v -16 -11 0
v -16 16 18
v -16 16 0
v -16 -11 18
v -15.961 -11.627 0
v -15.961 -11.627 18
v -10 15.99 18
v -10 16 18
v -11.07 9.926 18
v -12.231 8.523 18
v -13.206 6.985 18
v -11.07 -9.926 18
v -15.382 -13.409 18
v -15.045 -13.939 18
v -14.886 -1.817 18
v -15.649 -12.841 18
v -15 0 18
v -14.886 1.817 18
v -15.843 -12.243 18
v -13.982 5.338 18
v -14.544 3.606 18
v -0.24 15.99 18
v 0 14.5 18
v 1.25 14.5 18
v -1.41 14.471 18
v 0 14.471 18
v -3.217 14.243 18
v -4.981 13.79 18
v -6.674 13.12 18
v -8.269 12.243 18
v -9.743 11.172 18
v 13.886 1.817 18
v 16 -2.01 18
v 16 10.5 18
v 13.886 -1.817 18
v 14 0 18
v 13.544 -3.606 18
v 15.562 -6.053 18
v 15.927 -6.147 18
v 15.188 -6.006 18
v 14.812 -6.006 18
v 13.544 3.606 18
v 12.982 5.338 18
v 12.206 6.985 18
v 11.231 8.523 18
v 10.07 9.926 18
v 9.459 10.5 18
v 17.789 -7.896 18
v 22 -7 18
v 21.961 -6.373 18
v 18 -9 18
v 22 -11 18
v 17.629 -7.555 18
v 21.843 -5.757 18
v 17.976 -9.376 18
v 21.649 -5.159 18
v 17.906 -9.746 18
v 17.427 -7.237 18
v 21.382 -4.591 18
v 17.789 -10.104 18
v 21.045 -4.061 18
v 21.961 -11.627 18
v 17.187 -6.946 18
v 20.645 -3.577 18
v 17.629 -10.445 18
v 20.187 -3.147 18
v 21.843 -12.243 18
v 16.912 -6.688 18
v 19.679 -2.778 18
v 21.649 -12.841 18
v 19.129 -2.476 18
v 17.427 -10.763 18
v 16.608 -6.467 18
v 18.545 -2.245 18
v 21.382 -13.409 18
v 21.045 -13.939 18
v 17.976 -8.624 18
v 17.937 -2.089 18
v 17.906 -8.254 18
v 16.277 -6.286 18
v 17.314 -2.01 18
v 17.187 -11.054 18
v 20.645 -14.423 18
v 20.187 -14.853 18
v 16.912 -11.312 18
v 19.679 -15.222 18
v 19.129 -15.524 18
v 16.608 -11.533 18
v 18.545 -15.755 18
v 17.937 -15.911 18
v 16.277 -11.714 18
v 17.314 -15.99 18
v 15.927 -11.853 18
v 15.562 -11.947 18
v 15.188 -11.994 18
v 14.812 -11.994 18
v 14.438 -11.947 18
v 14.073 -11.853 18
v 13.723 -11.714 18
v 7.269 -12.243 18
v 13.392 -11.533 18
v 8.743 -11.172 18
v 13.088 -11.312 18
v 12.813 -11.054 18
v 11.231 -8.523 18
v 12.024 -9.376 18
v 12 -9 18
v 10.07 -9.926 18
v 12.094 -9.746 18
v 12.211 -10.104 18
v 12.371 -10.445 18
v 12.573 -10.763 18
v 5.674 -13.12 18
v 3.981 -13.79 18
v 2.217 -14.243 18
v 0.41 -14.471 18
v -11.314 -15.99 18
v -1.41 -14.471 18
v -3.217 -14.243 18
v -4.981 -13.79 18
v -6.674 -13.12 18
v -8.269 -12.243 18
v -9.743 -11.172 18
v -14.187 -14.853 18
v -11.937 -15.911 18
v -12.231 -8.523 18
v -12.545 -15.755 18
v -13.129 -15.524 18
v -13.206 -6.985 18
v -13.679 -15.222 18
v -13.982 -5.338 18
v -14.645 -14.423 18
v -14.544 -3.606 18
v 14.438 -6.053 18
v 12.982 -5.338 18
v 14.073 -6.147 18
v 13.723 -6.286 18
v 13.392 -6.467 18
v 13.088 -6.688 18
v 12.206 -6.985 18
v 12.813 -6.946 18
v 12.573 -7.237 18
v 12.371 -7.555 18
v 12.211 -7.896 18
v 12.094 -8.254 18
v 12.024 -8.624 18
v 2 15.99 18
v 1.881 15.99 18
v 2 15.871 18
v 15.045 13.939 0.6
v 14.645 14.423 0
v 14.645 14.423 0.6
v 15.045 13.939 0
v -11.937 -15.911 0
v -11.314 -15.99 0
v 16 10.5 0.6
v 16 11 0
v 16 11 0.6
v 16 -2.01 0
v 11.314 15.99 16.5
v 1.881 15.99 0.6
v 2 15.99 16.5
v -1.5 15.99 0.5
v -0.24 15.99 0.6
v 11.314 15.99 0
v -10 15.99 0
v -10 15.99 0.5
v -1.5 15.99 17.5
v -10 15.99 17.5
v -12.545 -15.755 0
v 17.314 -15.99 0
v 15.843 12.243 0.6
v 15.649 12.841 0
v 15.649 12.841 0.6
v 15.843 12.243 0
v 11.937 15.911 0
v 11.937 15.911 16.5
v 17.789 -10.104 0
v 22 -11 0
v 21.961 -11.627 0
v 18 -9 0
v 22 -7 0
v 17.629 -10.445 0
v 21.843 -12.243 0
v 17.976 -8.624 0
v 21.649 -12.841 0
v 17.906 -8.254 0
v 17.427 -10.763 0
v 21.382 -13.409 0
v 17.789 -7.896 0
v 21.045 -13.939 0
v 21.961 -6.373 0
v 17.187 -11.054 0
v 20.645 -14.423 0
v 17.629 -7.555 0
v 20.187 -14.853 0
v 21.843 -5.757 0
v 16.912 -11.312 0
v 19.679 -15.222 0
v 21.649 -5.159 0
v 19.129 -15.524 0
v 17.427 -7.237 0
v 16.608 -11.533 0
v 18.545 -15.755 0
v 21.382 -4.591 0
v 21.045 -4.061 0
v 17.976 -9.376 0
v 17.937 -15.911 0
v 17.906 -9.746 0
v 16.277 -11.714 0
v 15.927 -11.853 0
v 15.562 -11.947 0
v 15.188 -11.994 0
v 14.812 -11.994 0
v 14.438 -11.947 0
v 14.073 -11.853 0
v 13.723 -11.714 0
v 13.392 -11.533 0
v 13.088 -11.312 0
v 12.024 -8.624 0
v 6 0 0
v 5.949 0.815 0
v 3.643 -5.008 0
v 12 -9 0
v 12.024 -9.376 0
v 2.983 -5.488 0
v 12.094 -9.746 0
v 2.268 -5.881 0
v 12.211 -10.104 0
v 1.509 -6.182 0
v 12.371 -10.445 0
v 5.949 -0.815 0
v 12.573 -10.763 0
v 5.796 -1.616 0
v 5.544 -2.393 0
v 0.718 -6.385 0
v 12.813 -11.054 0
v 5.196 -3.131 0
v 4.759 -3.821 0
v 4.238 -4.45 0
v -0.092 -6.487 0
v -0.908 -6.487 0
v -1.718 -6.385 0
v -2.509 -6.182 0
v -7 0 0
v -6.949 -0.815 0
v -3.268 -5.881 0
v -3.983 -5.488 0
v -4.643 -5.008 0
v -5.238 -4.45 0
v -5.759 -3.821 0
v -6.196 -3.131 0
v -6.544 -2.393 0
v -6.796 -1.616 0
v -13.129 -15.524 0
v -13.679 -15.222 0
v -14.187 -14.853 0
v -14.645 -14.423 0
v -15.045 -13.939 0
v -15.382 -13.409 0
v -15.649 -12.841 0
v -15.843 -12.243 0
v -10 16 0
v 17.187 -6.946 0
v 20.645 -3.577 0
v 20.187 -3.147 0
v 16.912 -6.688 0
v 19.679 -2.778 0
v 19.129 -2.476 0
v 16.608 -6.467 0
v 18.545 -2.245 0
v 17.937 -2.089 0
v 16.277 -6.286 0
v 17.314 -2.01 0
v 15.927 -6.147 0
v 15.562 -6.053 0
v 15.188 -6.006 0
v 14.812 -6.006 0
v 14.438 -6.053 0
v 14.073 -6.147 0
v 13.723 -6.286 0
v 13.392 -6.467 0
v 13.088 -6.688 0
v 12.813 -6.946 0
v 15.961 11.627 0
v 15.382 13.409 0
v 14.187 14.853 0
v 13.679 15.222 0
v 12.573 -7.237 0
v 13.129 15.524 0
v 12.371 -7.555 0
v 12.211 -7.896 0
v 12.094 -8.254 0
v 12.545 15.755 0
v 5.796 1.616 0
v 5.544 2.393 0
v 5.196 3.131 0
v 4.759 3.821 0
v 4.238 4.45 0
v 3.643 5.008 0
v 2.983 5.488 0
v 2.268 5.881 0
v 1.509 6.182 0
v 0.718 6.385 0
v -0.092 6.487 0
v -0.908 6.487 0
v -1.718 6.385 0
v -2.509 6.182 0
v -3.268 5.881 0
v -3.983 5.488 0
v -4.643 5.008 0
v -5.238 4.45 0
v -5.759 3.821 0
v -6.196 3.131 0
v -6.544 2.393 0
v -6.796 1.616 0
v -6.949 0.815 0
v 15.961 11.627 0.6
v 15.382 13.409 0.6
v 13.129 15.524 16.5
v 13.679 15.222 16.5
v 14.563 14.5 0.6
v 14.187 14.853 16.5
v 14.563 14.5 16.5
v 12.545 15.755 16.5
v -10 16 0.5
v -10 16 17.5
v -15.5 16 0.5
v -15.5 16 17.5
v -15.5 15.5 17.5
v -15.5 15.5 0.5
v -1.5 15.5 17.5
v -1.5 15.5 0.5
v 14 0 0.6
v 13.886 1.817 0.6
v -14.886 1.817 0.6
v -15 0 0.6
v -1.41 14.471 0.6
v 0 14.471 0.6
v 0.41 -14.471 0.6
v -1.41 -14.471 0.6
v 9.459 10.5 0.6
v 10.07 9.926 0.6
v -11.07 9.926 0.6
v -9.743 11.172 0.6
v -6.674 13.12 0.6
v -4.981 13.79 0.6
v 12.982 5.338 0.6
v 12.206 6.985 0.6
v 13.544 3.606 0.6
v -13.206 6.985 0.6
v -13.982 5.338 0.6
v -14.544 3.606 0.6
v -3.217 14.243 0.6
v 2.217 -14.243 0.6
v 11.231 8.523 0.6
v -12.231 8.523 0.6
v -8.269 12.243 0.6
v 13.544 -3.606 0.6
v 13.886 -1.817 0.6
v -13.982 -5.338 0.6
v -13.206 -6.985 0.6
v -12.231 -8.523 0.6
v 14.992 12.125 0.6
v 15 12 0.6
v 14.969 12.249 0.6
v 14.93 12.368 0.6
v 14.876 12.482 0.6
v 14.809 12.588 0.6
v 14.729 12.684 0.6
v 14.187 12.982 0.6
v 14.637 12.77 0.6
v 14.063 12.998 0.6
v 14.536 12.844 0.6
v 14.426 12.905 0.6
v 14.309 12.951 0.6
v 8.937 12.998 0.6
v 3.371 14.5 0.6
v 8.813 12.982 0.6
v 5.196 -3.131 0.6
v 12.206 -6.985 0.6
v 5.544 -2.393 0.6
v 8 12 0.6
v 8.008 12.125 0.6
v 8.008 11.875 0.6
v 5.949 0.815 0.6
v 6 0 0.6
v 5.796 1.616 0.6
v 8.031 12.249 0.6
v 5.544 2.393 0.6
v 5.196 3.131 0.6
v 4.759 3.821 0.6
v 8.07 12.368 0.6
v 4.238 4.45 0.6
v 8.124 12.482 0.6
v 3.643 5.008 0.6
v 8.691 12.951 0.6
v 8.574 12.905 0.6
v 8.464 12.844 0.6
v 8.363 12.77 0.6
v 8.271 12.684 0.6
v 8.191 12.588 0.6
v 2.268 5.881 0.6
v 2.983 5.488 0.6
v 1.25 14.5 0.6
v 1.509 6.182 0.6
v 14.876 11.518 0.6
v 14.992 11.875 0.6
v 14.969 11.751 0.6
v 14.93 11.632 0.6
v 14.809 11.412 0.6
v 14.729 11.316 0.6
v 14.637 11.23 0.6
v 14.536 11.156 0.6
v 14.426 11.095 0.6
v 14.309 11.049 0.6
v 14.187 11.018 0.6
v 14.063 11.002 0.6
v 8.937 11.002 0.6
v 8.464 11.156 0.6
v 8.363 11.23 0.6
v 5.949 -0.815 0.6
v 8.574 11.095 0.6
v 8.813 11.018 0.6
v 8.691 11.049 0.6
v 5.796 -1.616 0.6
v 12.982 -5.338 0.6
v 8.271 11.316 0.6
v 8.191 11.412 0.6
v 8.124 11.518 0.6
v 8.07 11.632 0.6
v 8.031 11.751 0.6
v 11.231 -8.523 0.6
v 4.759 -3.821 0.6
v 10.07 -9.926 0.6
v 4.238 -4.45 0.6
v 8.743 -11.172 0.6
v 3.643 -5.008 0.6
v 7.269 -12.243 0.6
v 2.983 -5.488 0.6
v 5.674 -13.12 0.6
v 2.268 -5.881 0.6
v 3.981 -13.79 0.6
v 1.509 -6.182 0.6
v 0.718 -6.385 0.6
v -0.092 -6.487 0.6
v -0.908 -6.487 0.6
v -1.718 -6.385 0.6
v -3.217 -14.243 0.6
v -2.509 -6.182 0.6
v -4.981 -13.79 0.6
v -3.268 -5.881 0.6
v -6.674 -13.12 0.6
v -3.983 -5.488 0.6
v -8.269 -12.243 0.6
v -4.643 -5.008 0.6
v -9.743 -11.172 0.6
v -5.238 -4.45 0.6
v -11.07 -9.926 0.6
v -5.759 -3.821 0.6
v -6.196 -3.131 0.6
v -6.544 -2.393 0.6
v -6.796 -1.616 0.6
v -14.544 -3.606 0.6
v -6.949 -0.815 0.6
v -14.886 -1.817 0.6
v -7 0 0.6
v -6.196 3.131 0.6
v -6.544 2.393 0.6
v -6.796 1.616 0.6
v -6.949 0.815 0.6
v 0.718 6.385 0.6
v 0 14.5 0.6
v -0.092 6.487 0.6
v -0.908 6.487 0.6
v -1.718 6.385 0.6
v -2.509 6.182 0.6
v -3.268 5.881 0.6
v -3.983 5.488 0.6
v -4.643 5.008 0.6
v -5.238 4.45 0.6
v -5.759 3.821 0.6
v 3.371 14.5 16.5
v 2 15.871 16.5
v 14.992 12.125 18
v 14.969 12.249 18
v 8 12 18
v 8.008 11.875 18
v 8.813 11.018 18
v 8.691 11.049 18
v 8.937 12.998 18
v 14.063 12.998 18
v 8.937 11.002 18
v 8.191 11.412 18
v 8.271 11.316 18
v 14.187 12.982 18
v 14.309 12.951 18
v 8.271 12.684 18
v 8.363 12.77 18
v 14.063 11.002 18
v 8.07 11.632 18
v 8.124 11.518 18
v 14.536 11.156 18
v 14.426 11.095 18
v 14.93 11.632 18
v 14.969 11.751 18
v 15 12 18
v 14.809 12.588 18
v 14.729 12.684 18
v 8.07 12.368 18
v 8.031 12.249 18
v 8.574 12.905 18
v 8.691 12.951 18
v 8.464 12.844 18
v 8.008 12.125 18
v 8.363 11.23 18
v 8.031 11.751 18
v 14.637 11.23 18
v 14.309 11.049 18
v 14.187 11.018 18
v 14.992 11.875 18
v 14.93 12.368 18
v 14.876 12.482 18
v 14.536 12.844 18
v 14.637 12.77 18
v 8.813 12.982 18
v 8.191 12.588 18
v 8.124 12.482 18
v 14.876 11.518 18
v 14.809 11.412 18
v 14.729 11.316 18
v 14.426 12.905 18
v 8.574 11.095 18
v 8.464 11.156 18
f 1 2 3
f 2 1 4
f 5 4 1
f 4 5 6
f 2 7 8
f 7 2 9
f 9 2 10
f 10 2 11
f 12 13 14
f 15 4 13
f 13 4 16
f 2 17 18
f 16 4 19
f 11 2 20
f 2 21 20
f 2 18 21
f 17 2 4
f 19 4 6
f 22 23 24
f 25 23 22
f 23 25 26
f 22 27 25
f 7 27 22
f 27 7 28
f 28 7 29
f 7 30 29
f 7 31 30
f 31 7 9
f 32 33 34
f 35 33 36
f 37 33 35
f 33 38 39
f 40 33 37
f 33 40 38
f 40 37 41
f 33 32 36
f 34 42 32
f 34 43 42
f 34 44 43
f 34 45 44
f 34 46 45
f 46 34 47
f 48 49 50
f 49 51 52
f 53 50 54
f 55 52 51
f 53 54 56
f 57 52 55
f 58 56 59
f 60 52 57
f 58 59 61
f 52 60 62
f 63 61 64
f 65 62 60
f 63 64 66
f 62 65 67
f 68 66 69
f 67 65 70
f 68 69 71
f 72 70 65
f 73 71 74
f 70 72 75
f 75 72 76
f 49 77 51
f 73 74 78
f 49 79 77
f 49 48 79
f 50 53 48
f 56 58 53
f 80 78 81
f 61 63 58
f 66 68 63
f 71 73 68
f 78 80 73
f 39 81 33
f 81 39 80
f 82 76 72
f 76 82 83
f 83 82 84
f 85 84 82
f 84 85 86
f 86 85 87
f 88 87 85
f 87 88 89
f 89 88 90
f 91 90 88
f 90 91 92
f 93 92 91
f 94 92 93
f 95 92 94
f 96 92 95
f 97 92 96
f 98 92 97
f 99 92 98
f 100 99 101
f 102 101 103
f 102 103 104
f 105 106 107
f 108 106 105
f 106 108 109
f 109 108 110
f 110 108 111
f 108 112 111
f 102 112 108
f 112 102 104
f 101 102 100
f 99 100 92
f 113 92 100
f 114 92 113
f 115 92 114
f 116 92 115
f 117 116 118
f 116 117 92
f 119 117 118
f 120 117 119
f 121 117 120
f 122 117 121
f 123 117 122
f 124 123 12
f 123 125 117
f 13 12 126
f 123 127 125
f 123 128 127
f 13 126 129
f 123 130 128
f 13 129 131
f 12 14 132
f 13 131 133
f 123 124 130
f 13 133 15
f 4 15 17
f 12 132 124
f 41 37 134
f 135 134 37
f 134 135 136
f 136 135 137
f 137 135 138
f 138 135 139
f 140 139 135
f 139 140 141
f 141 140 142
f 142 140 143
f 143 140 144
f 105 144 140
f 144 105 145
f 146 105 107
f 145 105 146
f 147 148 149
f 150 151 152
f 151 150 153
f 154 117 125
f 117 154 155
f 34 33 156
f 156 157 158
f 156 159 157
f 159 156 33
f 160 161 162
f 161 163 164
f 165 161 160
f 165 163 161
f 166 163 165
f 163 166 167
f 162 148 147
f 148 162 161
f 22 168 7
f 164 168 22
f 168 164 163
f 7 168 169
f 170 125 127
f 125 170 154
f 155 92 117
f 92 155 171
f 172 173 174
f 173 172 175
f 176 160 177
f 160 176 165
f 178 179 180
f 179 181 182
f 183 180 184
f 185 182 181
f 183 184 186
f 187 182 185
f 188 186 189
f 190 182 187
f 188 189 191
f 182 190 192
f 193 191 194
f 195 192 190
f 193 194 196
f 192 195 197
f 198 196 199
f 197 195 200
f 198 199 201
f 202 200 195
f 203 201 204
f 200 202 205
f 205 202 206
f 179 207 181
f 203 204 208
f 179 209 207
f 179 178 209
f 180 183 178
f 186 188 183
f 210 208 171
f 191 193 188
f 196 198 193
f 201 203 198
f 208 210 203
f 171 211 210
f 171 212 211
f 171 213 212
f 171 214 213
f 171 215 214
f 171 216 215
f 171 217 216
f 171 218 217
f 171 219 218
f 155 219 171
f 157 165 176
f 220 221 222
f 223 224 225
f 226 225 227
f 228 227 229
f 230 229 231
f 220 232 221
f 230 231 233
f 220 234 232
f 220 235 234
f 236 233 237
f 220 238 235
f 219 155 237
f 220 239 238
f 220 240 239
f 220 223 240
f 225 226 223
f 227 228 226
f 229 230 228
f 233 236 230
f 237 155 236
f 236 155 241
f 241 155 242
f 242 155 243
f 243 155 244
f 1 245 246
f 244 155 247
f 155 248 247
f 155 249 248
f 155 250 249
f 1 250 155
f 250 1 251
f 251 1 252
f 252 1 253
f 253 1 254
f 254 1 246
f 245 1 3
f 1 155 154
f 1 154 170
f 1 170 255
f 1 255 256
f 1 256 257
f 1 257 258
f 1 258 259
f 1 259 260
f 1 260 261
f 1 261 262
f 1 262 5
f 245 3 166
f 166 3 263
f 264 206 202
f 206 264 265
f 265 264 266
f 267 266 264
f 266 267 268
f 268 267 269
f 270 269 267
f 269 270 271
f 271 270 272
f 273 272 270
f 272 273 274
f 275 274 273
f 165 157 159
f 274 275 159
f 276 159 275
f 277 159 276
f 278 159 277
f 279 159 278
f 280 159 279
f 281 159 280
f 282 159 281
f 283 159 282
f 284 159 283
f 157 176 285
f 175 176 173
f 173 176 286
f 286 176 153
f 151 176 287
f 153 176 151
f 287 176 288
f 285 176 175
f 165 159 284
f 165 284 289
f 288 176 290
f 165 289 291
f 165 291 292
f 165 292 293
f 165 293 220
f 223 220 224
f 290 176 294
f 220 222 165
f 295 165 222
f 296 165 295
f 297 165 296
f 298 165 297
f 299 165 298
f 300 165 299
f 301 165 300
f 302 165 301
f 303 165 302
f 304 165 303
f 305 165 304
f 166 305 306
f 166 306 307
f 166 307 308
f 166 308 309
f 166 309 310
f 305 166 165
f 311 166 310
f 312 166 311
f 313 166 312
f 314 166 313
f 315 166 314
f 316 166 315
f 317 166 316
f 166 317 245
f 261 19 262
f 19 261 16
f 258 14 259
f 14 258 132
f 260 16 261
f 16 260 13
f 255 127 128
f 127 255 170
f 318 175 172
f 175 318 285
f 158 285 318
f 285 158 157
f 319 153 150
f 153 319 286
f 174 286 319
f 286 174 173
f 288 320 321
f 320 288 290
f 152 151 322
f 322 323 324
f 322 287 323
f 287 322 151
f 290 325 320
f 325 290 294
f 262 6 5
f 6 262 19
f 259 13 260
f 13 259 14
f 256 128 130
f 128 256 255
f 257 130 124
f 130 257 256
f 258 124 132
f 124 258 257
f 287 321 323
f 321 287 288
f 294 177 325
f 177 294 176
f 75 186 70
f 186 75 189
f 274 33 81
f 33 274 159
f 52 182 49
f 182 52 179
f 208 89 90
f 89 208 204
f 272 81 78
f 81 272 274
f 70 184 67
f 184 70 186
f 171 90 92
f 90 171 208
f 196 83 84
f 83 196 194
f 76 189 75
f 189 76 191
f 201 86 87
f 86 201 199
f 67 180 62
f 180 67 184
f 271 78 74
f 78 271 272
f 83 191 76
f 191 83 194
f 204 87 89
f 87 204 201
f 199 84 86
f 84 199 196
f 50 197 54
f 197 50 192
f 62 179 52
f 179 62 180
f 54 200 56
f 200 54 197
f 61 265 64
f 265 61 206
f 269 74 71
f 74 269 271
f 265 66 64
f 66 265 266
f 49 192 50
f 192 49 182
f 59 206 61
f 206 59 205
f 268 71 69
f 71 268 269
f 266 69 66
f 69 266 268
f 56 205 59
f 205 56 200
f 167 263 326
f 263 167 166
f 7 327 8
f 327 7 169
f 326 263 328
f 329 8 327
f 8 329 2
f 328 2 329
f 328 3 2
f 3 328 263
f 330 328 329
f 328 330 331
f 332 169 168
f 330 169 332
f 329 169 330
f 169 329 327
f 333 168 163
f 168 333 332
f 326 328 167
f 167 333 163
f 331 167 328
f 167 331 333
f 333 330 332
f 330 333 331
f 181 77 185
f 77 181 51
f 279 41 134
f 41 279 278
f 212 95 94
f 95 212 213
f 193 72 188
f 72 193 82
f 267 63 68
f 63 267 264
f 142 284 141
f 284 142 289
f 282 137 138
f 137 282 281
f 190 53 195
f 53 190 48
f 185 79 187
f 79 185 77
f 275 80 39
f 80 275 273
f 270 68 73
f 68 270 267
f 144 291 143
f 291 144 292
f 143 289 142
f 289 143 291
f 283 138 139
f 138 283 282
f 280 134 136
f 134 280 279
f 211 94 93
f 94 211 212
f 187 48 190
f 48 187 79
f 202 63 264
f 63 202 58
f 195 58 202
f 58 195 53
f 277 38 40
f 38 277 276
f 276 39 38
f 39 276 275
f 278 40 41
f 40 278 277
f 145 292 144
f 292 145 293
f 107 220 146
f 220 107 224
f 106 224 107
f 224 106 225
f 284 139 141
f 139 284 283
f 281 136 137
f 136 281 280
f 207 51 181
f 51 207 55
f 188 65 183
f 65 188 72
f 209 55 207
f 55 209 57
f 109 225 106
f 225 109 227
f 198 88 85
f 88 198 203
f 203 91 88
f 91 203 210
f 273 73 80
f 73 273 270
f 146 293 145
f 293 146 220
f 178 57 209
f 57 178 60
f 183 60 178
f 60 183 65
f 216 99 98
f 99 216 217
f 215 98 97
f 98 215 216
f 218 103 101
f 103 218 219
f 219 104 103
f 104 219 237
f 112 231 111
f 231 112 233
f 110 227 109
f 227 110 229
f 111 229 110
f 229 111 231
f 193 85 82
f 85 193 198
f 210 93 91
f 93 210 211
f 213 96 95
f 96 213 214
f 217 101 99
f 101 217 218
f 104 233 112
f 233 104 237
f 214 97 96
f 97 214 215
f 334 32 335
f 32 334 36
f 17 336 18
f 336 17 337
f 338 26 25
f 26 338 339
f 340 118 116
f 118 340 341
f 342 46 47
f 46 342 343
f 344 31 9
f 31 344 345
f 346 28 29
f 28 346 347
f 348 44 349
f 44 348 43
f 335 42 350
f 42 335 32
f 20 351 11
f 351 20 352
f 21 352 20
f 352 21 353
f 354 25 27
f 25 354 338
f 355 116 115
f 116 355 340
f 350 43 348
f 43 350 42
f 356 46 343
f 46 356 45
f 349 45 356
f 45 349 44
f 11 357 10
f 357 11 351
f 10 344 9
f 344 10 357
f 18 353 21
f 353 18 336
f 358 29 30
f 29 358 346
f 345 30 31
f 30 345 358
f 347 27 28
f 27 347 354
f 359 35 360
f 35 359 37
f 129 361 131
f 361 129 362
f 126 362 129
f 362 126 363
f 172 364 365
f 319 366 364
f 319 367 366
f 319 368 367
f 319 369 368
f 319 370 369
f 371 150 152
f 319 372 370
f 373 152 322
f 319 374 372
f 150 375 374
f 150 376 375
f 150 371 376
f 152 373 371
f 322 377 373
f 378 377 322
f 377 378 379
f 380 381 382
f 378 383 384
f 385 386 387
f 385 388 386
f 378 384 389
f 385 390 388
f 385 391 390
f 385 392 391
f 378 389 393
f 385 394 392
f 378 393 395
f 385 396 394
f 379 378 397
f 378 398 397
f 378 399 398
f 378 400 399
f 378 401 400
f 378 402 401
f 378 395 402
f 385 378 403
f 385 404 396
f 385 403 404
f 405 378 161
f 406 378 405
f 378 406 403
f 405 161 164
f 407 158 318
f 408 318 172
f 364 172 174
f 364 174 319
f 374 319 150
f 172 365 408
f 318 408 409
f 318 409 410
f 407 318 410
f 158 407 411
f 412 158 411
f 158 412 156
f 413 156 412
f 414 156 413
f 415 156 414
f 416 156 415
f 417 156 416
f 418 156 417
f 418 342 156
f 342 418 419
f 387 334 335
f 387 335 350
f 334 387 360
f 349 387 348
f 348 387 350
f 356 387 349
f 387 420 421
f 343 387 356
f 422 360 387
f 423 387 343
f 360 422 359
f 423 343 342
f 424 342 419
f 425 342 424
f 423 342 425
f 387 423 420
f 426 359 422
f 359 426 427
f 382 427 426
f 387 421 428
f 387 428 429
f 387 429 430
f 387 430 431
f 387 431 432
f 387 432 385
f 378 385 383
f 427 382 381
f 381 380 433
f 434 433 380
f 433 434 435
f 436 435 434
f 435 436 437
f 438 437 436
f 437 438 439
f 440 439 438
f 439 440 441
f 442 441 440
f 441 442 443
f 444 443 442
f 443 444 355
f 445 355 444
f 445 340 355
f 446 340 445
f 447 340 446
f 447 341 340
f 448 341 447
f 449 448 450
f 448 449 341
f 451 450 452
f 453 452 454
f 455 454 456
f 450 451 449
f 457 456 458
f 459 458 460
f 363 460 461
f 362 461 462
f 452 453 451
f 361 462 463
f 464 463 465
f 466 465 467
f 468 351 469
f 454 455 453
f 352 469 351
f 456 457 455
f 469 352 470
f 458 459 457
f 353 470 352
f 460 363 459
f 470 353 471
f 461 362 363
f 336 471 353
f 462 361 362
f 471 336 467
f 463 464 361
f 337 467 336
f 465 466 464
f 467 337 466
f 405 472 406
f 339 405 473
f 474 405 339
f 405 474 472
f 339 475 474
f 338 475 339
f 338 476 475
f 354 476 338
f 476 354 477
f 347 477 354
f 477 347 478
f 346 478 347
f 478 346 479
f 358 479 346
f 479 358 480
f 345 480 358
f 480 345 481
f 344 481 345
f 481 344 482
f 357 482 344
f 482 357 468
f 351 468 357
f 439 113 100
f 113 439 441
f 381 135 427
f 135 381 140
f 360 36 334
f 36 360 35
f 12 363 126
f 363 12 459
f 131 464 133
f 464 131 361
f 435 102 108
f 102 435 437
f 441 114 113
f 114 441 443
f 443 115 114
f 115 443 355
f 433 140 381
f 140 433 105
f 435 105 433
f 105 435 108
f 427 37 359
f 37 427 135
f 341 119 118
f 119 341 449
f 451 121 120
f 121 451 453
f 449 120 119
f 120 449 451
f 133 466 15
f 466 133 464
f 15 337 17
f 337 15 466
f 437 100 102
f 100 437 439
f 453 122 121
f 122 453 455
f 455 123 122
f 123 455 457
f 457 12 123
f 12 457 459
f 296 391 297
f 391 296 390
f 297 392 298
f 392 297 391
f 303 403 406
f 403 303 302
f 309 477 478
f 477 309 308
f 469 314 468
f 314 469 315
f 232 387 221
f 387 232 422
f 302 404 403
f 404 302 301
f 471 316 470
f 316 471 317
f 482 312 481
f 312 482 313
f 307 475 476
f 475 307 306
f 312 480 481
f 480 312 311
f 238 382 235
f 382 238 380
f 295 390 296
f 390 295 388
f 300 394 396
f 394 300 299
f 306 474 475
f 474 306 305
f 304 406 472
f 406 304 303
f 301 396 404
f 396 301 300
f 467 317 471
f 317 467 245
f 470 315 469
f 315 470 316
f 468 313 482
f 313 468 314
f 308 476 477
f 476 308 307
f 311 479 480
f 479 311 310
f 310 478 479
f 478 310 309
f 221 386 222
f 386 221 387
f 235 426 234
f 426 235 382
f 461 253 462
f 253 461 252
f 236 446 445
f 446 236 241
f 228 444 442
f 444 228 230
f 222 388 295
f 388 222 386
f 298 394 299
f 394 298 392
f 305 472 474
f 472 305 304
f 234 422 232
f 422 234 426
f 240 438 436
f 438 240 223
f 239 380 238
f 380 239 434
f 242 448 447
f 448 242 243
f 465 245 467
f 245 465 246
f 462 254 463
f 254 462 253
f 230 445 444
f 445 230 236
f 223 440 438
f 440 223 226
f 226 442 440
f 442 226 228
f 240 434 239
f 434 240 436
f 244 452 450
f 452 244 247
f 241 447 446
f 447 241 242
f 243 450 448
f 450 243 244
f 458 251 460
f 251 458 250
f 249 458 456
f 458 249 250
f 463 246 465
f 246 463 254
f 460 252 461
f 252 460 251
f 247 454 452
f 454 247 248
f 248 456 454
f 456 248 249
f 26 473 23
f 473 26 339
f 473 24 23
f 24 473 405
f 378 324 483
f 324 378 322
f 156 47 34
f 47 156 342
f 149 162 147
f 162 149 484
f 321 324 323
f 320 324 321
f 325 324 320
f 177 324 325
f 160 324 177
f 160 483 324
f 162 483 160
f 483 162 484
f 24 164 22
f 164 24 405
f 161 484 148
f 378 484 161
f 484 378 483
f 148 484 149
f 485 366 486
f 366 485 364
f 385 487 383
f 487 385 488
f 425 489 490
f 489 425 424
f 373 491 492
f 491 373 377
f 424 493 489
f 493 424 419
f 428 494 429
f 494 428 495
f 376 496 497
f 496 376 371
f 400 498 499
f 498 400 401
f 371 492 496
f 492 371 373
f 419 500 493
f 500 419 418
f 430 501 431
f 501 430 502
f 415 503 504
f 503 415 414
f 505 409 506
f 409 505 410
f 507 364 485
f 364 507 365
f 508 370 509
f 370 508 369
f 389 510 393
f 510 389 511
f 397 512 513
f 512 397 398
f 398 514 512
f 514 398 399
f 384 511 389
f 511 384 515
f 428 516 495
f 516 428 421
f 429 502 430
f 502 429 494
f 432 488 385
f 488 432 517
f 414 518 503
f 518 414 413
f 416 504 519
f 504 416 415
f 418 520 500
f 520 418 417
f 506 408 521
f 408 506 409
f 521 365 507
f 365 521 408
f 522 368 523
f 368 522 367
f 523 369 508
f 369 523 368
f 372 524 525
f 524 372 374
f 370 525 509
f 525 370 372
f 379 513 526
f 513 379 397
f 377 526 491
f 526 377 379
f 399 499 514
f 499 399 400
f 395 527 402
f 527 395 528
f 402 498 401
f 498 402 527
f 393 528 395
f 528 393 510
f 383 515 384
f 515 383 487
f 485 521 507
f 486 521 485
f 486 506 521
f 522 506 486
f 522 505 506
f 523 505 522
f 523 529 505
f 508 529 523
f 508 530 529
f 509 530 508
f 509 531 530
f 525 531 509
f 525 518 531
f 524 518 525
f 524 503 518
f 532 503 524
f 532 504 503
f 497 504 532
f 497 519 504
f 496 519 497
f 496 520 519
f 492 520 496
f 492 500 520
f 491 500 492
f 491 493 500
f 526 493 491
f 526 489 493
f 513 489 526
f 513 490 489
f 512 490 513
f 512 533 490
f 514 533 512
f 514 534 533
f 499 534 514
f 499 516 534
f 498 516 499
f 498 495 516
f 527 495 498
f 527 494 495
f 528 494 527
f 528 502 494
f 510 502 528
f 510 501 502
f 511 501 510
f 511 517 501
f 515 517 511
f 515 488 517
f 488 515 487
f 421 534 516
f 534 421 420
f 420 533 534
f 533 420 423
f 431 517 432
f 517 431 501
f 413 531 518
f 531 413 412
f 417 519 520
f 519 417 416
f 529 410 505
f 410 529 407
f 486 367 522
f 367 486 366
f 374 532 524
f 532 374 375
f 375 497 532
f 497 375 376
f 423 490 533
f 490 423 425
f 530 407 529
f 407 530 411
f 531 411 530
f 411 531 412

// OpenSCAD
$fn = 50;


union() {
	difference() {
		union() {
			translate(v = [0, 0, 0]) {
				rotate(a = [0, 0, 0]) {
					hull() {
						translate(v = [-11.0000000000, 11.0000000000, 0]) {
							rotate(a = [0, 0, 0]) {
								translate(v = [0, 0, 0]) {
									rotate(a = [0, 0, 0]) {
										cylinder(h = 18, r = 5);
									}
								}
							}
						}
						translate(v = [11.0000000000, 11.0000000000, 0]) {
							rotate(a = [0, 0, 0]) {
								translate(v = [0, 0, 0]) {
									rotate(a = [0, 0, 0]) {
										cylinder(h = 18, r = 5);
									}
								}
							}
						}
						translate(v = [-11.0000000000, -11.0000000000, 0]) {
							rotate(a = [0, 0, 0]) {
								translate(v = [0, 0, 0]) {
									rotate(a = [0, 0, 0]) {
										cylinder(h = 18, r = 5);
									}
								}
							}
						}
						translate(v = [11.0000000000, -11.0000000000, 0]) {
							rotate(a = [0, 0, 0]) {
								translate(v = [0, 0, 0]) {
									rotate(a = [0, 0, 0]) {
										cylinder(h = 18, r = 5);
									}
								}
							}
						}
					}
				}
			}
			translate(v = [7.5000000000, -9.0000000000, 0]) {
				rotate(a = [0, 0, 0]) {
					hull() {
						translate(v = [-9.5000000000, 2.0000000000, 0]) {
							rotate(a = [0, 0, 0]) {
								translate(v = [0, 0, 0]) {
									rotate(a = [0, 0, 0]) {
										cylinder(h = 18, r = 5);
									}
								}
							}
						}
						translate(v = [9.5000000000, 2.0000000000, 0]) {
							rotate(a = [0, 0, 0]) {
								translate(v = [0, 0, 0]) {
									rotate(a = [0, 0, 0]) {
										cylinder(h = 18, r = 5);
									}
								}
							}
						}
						translate(v = [-9.5000000000, -2.0000000000, 0]) {
							rotate(a = [0, 0, 0]) {
								translate(v = [0, 0, 0]) {
									rotate(a = [0, 0, 0]) {
										cylinder(h = 18, r = 5);
									}
								}
							}
						}
						translate(v = [9.5000000000, -2.0000000000, 0]) {
							rotate(a = [0, 0, 0]) {
								translate(v = [0, 0, 0]) {
									rotate(a = [0, 0, 0]) {
										cylinder(h = 18, r = 5);
									}
								}
							}
						}
					}
				}
			}
			translate(v = [-16.0000000000, 10.0000000000, 0]) {
				rotate(a = [0, 0, 0]) {
					cube(size = [6, 6, 18]);
				}
			}
		}
		union() {
			translate(v = [-15.5000000000, 15.5000000000, 0.5000000000]) {
				rotate(a = [0, 0, 0]) {
					cube(size = [14, 0.5000000000, 17.0000000000]);
				}
			}
			translate(v = [15.0000000000, -9.0000000000, -125.0000000000]) {
				rotate(a = [0, 0, 0]) {
					cylinder(h = 250, r = 3.0000000000);
				}
			}
			translate(v = [-0.5000000000, 0.0000000000, 0.6000000000]) {
				rotate(a = [0, 0, 0]) {
					cylinder(h = 20.4000000000, r = 14.5000000000);
				}
			}
			translate(v = [-0.5000000000, 0.0000000000, -9.0000000000]) {
				rotate(a = [0, 0, 0]) {
					cylinder(h = 18, r = 6.5000000000);
				}
			}
			translate(v = [0.0000000000, 10.5000000000, 0.6000000000]) {
				rotate(a = [0, 0, 0]) {
					cube(size = [16.0000000000, 4, 20.4000000000]);
				}
			}
			translate(v = [2.0000000000, 10.5000000000, 16.5000000000]) {
				rotate(a = [0, 0, 0]) {
					cube(size = [14.0000000000, 7, 1.5000000000]);
				}
			}
			translate(v = [-3.0000000000, 18.7500000000, 0.6000000000]) {
				rotate(a = [0, 0, -45]) {
					cube(size = [10, 1.5000000000, 20.4000000000]);
				}
			}
			translate(v = [2.2500000000, 11.0000000000, 0.6000000000]) {
				rotate(a = [0, 0, 0]) {
					cube(size = [7.5000000000, 2, 17.4000000000]);
				}
			}
		}
	}
	union() {
		translate(v = [11.5000000000, 12, 0]) {
			rotate(a = [0, 0, 0]) {
				hull() {
					translate(v = [2.5000000000, 0, 0]) {
						rotate(a = [0, 0, 0]) {
							translate(v = [0, 0, 0]) {
								rotate(a = [0, 0, 0]) {
									cylinder(h = 18, r = 1.0000000000);
								}
							}
						}
					}
					translate(v = [-2.5000000000, 0, 0]) {
						rotate(a = [0, 0, 0]) {
							translate(v = [0, 0, 0]) {
								rotate(a = [0, 0, 0]) {
									cylinder(h = 18, r = 1.0000000000);
								}
							}
						}
					}
				}
			}
		}
	}
}
